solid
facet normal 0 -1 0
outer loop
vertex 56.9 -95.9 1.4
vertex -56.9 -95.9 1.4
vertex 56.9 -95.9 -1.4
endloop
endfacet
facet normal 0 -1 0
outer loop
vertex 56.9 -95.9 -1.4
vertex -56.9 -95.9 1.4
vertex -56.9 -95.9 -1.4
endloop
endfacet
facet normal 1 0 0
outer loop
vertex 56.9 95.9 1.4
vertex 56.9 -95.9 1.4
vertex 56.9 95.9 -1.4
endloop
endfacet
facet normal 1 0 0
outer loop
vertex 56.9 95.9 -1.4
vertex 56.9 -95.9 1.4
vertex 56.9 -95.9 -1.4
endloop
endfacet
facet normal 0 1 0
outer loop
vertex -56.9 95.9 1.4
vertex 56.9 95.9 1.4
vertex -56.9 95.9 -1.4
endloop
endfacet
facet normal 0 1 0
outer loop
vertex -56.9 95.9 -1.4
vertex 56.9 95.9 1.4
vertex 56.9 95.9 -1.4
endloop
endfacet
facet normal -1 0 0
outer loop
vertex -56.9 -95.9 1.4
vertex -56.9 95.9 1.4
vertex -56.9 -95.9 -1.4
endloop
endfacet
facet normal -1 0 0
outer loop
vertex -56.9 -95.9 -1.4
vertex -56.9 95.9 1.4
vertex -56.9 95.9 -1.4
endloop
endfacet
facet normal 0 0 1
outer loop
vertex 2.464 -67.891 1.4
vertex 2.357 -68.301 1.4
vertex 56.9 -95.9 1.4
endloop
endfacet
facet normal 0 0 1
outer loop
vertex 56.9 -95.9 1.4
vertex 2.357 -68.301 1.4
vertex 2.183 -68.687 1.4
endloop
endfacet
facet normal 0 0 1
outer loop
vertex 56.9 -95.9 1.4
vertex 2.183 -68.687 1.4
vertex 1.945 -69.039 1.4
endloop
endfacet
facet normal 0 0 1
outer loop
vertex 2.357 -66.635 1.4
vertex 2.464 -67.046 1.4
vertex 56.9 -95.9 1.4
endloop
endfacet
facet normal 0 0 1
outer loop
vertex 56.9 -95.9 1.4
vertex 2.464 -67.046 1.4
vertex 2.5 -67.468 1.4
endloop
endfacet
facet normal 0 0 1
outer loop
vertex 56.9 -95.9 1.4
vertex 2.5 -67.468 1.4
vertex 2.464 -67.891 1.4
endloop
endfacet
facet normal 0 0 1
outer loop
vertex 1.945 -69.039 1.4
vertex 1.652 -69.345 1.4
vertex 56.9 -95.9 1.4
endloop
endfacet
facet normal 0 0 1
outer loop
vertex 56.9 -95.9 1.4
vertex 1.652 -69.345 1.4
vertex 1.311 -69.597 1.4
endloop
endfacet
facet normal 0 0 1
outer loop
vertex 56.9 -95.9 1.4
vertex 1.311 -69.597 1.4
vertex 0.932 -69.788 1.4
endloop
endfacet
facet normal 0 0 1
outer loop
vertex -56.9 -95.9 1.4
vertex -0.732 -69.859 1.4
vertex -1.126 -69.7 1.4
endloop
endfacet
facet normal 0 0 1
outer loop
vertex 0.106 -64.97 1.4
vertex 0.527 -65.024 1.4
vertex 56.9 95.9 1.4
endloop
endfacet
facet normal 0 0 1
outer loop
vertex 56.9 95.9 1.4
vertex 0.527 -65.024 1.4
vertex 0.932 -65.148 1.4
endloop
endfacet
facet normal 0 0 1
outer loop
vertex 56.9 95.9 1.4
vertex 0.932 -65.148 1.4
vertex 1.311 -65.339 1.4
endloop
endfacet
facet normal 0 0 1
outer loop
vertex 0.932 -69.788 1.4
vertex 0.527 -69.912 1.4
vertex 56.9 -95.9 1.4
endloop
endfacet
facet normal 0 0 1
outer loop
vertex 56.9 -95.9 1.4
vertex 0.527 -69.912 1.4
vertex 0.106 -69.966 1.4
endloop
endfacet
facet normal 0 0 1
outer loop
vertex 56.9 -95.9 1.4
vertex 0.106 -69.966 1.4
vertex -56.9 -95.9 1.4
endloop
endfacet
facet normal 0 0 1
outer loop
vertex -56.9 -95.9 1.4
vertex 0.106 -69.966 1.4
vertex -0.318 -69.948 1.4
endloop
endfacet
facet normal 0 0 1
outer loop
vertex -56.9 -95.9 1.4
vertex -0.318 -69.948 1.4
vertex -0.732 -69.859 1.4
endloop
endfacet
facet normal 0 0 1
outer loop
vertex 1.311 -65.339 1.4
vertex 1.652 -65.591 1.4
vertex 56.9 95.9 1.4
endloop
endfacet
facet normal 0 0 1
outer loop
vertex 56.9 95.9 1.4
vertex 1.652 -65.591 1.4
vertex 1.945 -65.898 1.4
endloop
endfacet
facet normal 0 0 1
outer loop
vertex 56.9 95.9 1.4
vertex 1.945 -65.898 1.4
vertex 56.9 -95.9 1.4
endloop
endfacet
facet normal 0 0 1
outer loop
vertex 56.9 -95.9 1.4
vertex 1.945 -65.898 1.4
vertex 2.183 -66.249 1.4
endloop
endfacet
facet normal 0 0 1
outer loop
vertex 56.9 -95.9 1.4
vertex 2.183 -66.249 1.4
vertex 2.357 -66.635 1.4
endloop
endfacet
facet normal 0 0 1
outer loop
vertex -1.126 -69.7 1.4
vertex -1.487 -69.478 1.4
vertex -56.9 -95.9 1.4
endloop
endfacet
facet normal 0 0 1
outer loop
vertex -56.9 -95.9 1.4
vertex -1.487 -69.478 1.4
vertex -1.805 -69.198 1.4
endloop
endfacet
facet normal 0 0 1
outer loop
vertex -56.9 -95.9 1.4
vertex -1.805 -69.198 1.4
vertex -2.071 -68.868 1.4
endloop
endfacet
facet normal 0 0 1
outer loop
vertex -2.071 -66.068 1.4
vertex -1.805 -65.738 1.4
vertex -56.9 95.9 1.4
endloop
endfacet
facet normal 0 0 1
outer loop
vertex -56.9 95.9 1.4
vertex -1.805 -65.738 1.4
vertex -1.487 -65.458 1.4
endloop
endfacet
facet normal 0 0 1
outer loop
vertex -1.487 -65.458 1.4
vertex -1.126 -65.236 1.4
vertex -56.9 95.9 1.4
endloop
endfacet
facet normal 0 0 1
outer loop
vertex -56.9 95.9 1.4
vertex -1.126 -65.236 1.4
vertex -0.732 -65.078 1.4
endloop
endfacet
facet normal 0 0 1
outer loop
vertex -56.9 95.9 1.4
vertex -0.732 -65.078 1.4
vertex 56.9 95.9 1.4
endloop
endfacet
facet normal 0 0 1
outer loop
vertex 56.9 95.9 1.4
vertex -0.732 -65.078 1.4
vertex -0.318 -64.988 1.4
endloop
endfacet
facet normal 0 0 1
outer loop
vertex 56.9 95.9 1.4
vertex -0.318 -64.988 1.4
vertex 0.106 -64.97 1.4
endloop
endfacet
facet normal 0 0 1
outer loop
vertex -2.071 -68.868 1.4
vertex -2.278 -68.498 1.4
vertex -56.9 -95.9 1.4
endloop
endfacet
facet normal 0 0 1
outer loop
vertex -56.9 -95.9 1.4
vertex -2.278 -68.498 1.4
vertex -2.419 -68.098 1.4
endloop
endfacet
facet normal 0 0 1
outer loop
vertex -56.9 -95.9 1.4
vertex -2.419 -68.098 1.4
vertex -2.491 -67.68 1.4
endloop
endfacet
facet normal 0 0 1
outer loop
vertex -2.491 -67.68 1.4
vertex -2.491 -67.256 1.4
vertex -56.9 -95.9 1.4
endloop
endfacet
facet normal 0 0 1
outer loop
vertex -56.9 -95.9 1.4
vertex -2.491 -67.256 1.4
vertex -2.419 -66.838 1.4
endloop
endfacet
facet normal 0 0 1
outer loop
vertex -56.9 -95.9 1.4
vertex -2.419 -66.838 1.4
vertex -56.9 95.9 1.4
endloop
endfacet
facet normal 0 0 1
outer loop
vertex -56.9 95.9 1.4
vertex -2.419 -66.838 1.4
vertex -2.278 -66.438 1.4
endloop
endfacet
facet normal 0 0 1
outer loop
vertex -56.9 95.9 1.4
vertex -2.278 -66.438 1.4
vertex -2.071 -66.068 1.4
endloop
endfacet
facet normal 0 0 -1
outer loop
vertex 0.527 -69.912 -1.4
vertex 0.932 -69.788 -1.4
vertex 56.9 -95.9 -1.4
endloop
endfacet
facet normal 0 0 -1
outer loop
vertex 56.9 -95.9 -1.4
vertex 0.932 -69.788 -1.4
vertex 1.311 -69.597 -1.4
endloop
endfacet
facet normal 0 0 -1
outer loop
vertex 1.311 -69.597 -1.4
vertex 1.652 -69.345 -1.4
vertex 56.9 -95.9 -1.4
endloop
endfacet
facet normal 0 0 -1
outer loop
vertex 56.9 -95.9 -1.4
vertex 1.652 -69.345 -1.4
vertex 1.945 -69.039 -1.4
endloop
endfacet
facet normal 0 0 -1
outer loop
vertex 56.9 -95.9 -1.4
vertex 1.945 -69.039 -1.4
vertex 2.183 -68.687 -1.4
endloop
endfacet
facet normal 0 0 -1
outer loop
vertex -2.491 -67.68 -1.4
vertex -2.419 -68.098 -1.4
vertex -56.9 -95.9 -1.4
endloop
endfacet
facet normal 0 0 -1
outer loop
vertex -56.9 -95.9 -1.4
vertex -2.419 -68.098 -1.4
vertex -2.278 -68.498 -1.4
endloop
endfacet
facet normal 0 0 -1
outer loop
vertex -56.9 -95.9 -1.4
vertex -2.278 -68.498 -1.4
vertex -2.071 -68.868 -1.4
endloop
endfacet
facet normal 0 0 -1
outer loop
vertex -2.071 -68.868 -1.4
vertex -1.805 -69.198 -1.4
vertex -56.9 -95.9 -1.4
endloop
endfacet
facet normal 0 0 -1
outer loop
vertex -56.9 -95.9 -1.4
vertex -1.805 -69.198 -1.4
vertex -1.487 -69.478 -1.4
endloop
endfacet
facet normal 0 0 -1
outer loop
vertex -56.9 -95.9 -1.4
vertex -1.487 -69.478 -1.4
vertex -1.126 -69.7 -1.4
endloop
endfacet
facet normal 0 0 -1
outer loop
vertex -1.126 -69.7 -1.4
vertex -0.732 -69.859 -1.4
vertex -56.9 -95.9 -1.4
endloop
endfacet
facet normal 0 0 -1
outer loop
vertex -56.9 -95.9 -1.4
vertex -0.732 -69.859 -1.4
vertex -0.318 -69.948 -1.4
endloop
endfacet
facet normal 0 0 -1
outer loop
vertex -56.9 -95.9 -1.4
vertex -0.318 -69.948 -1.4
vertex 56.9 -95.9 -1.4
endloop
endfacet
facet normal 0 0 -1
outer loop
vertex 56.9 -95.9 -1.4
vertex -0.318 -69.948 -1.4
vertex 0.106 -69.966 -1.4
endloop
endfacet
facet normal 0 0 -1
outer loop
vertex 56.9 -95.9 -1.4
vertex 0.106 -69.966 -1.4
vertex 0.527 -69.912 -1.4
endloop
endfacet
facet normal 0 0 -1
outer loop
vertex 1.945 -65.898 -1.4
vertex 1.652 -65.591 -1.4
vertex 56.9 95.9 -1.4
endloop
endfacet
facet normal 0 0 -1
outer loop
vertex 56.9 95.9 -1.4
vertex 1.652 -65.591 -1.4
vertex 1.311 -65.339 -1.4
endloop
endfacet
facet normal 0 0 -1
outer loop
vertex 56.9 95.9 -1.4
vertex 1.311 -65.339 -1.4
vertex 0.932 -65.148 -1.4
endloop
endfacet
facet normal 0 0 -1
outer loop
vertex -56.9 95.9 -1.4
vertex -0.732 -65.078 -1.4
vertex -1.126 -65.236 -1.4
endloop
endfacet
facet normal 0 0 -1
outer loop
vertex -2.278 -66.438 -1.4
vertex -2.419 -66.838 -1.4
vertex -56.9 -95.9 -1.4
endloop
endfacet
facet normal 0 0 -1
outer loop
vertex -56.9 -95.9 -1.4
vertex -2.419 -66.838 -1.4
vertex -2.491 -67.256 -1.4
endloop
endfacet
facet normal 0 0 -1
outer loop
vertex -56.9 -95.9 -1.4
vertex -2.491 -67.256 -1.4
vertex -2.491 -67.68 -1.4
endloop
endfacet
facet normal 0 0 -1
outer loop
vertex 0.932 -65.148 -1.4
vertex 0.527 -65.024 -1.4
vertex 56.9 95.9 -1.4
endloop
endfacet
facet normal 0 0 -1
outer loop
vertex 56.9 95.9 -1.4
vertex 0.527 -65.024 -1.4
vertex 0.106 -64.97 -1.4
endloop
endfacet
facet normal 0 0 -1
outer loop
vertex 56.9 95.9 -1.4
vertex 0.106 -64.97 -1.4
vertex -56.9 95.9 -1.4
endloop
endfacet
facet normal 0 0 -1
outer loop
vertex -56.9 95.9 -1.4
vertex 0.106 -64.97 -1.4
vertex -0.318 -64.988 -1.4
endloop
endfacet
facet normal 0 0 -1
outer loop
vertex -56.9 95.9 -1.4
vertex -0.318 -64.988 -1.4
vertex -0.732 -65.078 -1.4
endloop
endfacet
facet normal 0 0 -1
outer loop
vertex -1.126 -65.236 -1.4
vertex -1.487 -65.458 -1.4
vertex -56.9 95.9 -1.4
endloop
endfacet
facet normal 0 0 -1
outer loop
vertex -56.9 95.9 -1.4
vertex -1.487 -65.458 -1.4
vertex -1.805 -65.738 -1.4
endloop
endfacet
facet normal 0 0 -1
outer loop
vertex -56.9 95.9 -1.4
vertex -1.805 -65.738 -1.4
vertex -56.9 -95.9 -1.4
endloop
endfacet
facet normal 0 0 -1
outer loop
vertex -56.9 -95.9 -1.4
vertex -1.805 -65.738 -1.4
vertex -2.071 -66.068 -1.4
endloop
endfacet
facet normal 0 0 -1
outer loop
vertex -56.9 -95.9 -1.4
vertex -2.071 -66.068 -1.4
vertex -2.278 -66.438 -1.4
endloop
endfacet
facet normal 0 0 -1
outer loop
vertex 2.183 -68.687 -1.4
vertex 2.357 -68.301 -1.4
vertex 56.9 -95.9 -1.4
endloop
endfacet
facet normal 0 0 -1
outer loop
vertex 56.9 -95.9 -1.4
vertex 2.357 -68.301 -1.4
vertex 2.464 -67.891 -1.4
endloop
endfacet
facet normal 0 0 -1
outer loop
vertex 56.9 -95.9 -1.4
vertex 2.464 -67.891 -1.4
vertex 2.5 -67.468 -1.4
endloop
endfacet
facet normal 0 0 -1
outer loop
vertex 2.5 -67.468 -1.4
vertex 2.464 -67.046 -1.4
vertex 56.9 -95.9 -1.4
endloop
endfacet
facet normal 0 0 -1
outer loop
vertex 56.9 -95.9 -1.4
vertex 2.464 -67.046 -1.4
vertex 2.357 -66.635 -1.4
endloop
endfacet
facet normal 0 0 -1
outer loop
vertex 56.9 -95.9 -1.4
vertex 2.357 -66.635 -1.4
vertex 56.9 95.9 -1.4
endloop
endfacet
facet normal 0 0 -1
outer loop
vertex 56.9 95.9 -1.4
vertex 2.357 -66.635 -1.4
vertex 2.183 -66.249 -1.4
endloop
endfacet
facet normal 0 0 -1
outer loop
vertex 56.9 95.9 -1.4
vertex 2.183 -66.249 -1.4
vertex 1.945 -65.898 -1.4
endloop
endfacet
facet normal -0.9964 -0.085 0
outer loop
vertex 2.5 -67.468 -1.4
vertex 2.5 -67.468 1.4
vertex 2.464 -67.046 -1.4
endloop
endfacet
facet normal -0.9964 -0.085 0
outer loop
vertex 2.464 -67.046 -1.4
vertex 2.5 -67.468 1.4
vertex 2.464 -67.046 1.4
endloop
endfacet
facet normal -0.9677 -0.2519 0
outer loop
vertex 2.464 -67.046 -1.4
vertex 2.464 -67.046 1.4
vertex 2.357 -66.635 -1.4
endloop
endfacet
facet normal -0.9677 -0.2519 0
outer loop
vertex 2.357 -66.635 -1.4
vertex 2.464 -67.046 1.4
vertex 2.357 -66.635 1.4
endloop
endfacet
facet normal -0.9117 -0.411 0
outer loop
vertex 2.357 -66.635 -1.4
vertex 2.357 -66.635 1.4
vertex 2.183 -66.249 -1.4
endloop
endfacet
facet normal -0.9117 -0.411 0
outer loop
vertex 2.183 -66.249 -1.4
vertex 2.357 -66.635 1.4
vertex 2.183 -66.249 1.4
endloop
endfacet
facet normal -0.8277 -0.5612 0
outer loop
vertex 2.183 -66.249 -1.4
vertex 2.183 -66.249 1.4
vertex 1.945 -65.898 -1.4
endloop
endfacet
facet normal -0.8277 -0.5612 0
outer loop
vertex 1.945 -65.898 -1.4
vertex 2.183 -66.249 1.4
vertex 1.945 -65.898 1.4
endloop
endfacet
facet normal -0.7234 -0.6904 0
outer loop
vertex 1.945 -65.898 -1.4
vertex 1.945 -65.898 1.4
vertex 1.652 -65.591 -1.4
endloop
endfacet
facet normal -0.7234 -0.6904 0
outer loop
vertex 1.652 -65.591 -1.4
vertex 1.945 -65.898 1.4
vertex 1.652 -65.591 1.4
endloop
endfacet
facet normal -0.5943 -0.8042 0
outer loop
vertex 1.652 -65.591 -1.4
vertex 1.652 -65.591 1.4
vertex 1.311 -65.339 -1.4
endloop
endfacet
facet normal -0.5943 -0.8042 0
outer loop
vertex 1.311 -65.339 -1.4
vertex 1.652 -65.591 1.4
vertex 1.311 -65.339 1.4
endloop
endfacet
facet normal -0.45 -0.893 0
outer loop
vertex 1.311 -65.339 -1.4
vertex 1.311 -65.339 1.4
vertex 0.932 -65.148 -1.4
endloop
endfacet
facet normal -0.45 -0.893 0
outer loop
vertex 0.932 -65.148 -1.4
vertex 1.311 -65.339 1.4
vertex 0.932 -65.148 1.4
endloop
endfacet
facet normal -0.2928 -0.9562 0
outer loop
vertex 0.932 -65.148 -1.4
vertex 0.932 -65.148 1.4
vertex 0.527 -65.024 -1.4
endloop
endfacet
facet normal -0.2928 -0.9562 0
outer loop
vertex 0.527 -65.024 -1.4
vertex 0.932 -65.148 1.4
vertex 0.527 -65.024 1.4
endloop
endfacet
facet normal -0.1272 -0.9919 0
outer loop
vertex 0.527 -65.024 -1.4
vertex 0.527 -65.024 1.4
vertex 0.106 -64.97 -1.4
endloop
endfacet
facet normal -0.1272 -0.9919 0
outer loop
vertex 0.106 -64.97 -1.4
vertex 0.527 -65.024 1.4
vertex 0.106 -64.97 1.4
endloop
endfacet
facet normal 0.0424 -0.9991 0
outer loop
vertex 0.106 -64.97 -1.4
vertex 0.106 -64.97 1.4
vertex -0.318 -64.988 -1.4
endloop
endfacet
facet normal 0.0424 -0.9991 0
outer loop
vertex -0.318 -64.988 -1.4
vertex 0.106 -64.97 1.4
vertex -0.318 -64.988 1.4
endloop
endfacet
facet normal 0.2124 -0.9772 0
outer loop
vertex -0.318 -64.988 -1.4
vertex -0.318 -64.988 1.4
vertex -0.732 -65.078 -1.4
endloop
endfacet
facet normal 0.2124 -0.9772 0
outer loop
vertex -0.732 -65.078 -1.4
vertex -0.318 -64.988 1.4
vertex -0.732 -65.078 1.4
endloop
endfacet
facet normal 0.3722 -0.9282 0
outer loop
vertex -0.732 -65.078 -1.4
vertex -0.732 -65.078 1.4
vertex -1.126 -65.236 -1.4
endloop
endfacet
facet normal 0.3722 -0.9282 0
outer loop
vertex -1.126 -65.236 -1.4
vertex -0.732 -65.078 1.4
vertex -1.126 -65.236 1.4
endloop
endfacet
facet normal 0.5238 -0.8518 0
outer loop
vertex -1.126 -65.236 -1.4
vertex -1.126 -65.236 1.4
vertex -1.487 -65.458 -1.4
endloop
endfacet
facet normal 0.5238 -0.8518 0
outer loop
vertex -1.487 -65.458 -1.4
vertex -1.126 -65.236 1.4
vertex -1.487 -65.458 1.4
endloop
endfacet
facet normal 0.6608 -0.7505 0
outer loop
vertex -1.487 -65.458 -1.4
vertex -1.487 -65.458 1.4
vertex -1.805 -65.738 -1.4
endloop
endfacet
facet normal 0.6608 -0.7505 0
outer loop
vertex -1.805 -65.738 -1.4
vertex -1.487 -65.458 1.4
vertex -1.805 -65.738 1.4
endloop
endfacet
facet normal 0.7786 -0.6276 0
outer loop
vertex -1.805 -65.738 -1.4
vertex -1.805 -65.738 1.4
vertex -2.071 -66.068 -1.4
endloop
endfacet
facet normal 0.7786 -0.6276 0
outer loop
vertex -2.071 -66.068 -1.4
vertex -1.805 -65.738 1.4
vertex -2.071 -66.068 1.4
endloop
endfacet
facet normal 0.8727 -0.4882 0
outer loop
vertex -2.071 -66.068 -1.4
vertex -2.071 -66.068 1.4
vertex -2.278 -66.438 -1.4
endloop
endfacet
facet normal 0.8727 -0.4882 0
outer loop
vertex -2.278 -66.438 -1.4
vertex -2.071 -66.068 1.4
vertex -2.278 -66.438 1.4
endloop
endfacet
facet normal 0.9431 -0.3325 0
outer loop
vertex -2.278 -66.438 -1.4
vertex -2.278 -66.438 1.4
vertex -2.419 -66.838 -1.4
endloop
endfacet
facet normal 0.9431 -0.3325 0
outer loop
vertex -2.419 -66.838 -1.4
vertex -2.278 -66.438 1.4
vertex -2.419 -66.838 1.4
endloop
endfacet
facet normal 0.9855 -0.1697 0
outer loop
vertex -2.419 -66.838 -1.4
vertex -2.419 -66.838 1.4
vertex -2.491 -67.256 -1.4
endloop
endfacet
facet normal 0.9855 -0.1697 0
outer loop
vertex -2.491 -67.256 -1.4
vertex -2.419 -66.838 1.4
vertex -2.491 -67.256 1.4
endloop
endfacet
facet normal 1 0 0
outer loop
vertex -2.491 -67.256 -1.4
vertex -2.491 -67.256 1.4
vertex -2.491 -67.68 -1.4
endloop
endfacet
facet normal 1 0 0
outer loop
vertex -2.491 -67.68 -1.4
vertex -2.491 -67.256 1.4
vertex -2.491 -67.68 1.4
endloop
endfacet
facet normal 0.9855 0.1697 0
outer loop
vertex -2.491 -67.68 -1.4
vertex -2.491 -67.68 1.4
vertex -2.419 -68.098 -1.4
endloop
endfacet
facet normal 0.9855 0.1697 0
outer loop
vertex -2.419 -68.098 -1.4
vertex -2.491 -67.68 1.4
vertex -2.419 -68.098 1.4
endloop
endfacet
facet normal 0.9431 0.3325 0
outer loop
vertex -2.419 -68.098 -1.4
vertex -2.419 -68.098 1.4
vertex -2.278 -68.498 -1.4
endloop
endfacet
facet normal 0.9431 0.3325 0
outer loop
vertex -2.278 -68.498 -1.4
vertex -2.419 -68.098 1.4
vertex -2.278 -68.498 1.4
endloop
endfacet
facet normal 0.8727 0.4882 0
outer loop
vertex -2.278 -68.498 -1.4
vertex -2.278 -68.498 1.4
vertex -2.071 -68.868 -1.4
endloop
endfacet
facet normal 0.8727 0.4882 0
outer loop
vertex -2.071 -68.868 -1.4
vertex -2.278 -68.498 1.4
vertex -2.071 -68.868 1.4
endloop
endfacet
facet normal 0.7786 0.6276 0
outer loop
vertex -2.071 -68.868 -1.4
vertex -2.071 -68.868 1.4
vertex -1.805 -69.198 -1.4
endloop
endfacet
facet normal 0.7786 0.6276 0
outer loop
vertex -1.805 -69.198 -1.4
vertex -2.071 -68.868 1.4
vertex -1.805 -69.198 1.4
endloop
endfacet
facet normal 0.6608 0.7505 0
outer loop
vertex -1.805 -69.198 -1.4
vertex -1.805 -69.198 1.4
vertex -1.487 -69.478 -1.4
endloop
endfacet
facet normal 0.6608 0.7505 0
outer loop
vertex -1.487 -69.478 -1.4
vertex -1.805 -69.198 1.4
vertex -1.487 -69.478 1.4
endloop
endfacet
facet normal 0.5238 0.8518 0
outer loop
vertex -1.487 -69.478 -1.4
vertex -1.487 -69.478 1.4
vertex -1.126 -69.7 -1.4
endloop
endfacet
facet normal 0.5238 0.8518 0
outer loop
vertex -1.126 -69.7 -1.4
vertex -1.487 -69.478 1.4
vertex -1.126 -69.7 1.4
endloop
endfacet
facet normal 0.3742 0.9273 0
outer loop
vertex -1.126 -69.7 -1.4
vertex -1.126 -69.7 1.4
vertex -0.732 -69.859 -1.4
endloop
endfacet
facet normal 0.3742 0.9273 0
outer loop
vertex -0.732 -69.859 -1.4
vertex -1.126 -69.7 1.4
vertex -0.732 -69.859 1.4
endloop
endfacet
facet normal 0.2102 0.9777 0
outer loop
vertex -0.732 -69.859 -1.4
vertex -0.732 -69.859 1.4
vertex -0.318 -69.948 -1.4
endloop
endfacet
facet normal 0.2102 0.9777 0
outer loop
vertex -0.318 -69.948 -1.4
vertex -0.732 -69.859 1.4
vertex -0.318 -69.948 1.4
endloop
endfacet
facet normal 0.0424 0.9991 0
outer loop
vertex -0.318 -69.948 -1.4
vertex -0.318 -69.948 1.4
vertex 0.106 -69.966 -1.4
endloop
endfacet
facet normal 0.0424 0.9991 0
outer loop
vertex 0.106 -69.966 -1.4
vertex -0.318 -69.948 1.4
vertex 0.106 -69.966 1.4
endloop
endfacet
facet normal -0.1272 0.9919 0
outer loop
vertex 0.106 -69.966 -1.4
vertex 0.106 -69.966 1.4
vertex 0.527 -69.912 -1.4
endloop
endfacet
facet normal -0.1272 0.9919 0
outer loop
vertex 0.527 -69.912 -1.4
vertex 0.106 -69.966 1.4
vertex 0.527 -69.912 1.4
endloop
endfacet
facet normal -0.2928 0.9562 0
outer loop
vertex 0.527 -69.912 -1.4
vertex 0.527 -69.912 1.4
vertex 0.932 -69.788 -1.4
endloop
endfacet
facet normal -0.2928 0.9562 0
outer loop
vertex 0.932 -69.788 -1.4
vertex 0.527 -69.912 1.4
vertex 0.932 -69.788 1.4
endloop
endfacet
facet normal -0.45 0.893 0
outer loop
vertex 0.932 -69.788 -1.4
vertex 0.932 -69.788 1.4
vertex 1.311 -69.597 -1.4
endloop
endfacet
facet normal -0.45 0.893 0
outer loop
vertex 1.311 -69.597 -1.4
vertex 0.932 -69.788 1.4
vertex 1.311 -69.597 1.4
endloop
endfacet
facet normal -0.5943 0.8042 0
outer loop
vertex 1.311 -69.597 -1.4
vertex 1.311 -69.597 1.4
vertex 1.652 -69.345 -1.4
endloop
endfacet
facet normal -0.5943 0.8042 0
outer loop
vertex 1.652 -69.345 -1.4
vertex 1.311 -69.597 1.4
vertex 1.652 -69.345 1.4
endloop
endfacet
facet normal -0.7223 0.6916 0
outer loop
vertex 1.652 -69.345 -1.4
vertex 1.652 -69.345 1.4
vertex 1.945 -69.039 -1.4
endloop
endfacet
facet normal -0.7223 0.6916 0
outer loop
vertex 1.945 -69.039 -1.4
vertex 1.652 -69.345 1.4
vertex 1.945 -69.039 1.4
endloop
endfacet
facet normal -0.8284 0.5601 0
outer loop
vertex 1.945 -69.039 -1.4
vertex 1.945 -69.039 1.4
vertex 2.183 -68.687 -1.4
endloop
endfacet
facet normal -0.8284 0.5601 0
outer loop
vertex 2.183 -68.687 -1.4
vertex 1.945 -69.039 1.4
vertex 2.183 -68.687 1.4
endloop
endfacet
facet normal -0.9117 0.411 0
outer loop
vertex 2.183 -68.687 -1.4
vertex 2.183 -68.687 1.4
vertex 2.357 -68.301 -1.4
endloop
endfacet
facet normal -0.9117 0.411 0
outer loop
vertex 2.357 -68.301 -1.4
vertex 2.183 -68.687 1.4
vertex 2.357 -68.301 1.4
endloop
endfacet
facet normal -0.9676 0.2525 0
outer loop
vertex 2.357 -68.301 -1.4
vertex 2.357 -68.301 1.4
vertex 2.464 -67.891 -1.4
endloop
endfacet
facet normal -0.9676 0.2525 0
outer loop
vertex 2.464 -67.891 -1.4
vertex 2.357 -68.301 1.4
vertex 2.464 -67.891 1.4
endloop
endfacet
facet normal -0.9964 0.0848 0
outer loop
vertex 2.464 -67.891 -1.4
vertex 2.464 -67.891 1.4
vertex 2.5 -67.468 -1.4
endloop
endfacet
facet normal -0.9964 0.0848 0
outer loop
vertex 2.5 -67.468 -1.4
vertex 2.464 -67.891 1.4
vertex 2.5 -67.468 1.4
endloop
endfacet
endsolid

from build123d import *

# Parameters (mm, degrees)
ESBO_O1_W                = 191.8
ESBO_O1_H                = 113.8
RESSALTO_EXTRUS_O1_DEPTH = 1.4
ESBO_O2_R                = 2.5
CORTE_EXTRUS_O1_DEPTH    = 2.8


with BuildPart() as part:
    # Esboço1 → Ressalto-extrusão1 (new, symmetric)
    with BuildSketch(Plane(origin=(0, 0, 0), x_dir=(0, 1, 0), z_dir=(0, 0, 1))):
        Rectangle(ESBO_O1_W, ESBO_O1_H)
    extrude(amount=RESSALTO_EXTRUS_O1_DEPTH, both=True)

    # Esboço2 → Corte-extrusão1 (cut)
    with BuildSketch(Plane.XY.offset(1.4)):
        with Locations((0, -67.468129393)):
            Circle(ESBO_O2_R)
    extrude(amount=-CORTE_EXTRUS_O1_DEPTH, mode=Mode.SUBTRACT)


solid = part.part
